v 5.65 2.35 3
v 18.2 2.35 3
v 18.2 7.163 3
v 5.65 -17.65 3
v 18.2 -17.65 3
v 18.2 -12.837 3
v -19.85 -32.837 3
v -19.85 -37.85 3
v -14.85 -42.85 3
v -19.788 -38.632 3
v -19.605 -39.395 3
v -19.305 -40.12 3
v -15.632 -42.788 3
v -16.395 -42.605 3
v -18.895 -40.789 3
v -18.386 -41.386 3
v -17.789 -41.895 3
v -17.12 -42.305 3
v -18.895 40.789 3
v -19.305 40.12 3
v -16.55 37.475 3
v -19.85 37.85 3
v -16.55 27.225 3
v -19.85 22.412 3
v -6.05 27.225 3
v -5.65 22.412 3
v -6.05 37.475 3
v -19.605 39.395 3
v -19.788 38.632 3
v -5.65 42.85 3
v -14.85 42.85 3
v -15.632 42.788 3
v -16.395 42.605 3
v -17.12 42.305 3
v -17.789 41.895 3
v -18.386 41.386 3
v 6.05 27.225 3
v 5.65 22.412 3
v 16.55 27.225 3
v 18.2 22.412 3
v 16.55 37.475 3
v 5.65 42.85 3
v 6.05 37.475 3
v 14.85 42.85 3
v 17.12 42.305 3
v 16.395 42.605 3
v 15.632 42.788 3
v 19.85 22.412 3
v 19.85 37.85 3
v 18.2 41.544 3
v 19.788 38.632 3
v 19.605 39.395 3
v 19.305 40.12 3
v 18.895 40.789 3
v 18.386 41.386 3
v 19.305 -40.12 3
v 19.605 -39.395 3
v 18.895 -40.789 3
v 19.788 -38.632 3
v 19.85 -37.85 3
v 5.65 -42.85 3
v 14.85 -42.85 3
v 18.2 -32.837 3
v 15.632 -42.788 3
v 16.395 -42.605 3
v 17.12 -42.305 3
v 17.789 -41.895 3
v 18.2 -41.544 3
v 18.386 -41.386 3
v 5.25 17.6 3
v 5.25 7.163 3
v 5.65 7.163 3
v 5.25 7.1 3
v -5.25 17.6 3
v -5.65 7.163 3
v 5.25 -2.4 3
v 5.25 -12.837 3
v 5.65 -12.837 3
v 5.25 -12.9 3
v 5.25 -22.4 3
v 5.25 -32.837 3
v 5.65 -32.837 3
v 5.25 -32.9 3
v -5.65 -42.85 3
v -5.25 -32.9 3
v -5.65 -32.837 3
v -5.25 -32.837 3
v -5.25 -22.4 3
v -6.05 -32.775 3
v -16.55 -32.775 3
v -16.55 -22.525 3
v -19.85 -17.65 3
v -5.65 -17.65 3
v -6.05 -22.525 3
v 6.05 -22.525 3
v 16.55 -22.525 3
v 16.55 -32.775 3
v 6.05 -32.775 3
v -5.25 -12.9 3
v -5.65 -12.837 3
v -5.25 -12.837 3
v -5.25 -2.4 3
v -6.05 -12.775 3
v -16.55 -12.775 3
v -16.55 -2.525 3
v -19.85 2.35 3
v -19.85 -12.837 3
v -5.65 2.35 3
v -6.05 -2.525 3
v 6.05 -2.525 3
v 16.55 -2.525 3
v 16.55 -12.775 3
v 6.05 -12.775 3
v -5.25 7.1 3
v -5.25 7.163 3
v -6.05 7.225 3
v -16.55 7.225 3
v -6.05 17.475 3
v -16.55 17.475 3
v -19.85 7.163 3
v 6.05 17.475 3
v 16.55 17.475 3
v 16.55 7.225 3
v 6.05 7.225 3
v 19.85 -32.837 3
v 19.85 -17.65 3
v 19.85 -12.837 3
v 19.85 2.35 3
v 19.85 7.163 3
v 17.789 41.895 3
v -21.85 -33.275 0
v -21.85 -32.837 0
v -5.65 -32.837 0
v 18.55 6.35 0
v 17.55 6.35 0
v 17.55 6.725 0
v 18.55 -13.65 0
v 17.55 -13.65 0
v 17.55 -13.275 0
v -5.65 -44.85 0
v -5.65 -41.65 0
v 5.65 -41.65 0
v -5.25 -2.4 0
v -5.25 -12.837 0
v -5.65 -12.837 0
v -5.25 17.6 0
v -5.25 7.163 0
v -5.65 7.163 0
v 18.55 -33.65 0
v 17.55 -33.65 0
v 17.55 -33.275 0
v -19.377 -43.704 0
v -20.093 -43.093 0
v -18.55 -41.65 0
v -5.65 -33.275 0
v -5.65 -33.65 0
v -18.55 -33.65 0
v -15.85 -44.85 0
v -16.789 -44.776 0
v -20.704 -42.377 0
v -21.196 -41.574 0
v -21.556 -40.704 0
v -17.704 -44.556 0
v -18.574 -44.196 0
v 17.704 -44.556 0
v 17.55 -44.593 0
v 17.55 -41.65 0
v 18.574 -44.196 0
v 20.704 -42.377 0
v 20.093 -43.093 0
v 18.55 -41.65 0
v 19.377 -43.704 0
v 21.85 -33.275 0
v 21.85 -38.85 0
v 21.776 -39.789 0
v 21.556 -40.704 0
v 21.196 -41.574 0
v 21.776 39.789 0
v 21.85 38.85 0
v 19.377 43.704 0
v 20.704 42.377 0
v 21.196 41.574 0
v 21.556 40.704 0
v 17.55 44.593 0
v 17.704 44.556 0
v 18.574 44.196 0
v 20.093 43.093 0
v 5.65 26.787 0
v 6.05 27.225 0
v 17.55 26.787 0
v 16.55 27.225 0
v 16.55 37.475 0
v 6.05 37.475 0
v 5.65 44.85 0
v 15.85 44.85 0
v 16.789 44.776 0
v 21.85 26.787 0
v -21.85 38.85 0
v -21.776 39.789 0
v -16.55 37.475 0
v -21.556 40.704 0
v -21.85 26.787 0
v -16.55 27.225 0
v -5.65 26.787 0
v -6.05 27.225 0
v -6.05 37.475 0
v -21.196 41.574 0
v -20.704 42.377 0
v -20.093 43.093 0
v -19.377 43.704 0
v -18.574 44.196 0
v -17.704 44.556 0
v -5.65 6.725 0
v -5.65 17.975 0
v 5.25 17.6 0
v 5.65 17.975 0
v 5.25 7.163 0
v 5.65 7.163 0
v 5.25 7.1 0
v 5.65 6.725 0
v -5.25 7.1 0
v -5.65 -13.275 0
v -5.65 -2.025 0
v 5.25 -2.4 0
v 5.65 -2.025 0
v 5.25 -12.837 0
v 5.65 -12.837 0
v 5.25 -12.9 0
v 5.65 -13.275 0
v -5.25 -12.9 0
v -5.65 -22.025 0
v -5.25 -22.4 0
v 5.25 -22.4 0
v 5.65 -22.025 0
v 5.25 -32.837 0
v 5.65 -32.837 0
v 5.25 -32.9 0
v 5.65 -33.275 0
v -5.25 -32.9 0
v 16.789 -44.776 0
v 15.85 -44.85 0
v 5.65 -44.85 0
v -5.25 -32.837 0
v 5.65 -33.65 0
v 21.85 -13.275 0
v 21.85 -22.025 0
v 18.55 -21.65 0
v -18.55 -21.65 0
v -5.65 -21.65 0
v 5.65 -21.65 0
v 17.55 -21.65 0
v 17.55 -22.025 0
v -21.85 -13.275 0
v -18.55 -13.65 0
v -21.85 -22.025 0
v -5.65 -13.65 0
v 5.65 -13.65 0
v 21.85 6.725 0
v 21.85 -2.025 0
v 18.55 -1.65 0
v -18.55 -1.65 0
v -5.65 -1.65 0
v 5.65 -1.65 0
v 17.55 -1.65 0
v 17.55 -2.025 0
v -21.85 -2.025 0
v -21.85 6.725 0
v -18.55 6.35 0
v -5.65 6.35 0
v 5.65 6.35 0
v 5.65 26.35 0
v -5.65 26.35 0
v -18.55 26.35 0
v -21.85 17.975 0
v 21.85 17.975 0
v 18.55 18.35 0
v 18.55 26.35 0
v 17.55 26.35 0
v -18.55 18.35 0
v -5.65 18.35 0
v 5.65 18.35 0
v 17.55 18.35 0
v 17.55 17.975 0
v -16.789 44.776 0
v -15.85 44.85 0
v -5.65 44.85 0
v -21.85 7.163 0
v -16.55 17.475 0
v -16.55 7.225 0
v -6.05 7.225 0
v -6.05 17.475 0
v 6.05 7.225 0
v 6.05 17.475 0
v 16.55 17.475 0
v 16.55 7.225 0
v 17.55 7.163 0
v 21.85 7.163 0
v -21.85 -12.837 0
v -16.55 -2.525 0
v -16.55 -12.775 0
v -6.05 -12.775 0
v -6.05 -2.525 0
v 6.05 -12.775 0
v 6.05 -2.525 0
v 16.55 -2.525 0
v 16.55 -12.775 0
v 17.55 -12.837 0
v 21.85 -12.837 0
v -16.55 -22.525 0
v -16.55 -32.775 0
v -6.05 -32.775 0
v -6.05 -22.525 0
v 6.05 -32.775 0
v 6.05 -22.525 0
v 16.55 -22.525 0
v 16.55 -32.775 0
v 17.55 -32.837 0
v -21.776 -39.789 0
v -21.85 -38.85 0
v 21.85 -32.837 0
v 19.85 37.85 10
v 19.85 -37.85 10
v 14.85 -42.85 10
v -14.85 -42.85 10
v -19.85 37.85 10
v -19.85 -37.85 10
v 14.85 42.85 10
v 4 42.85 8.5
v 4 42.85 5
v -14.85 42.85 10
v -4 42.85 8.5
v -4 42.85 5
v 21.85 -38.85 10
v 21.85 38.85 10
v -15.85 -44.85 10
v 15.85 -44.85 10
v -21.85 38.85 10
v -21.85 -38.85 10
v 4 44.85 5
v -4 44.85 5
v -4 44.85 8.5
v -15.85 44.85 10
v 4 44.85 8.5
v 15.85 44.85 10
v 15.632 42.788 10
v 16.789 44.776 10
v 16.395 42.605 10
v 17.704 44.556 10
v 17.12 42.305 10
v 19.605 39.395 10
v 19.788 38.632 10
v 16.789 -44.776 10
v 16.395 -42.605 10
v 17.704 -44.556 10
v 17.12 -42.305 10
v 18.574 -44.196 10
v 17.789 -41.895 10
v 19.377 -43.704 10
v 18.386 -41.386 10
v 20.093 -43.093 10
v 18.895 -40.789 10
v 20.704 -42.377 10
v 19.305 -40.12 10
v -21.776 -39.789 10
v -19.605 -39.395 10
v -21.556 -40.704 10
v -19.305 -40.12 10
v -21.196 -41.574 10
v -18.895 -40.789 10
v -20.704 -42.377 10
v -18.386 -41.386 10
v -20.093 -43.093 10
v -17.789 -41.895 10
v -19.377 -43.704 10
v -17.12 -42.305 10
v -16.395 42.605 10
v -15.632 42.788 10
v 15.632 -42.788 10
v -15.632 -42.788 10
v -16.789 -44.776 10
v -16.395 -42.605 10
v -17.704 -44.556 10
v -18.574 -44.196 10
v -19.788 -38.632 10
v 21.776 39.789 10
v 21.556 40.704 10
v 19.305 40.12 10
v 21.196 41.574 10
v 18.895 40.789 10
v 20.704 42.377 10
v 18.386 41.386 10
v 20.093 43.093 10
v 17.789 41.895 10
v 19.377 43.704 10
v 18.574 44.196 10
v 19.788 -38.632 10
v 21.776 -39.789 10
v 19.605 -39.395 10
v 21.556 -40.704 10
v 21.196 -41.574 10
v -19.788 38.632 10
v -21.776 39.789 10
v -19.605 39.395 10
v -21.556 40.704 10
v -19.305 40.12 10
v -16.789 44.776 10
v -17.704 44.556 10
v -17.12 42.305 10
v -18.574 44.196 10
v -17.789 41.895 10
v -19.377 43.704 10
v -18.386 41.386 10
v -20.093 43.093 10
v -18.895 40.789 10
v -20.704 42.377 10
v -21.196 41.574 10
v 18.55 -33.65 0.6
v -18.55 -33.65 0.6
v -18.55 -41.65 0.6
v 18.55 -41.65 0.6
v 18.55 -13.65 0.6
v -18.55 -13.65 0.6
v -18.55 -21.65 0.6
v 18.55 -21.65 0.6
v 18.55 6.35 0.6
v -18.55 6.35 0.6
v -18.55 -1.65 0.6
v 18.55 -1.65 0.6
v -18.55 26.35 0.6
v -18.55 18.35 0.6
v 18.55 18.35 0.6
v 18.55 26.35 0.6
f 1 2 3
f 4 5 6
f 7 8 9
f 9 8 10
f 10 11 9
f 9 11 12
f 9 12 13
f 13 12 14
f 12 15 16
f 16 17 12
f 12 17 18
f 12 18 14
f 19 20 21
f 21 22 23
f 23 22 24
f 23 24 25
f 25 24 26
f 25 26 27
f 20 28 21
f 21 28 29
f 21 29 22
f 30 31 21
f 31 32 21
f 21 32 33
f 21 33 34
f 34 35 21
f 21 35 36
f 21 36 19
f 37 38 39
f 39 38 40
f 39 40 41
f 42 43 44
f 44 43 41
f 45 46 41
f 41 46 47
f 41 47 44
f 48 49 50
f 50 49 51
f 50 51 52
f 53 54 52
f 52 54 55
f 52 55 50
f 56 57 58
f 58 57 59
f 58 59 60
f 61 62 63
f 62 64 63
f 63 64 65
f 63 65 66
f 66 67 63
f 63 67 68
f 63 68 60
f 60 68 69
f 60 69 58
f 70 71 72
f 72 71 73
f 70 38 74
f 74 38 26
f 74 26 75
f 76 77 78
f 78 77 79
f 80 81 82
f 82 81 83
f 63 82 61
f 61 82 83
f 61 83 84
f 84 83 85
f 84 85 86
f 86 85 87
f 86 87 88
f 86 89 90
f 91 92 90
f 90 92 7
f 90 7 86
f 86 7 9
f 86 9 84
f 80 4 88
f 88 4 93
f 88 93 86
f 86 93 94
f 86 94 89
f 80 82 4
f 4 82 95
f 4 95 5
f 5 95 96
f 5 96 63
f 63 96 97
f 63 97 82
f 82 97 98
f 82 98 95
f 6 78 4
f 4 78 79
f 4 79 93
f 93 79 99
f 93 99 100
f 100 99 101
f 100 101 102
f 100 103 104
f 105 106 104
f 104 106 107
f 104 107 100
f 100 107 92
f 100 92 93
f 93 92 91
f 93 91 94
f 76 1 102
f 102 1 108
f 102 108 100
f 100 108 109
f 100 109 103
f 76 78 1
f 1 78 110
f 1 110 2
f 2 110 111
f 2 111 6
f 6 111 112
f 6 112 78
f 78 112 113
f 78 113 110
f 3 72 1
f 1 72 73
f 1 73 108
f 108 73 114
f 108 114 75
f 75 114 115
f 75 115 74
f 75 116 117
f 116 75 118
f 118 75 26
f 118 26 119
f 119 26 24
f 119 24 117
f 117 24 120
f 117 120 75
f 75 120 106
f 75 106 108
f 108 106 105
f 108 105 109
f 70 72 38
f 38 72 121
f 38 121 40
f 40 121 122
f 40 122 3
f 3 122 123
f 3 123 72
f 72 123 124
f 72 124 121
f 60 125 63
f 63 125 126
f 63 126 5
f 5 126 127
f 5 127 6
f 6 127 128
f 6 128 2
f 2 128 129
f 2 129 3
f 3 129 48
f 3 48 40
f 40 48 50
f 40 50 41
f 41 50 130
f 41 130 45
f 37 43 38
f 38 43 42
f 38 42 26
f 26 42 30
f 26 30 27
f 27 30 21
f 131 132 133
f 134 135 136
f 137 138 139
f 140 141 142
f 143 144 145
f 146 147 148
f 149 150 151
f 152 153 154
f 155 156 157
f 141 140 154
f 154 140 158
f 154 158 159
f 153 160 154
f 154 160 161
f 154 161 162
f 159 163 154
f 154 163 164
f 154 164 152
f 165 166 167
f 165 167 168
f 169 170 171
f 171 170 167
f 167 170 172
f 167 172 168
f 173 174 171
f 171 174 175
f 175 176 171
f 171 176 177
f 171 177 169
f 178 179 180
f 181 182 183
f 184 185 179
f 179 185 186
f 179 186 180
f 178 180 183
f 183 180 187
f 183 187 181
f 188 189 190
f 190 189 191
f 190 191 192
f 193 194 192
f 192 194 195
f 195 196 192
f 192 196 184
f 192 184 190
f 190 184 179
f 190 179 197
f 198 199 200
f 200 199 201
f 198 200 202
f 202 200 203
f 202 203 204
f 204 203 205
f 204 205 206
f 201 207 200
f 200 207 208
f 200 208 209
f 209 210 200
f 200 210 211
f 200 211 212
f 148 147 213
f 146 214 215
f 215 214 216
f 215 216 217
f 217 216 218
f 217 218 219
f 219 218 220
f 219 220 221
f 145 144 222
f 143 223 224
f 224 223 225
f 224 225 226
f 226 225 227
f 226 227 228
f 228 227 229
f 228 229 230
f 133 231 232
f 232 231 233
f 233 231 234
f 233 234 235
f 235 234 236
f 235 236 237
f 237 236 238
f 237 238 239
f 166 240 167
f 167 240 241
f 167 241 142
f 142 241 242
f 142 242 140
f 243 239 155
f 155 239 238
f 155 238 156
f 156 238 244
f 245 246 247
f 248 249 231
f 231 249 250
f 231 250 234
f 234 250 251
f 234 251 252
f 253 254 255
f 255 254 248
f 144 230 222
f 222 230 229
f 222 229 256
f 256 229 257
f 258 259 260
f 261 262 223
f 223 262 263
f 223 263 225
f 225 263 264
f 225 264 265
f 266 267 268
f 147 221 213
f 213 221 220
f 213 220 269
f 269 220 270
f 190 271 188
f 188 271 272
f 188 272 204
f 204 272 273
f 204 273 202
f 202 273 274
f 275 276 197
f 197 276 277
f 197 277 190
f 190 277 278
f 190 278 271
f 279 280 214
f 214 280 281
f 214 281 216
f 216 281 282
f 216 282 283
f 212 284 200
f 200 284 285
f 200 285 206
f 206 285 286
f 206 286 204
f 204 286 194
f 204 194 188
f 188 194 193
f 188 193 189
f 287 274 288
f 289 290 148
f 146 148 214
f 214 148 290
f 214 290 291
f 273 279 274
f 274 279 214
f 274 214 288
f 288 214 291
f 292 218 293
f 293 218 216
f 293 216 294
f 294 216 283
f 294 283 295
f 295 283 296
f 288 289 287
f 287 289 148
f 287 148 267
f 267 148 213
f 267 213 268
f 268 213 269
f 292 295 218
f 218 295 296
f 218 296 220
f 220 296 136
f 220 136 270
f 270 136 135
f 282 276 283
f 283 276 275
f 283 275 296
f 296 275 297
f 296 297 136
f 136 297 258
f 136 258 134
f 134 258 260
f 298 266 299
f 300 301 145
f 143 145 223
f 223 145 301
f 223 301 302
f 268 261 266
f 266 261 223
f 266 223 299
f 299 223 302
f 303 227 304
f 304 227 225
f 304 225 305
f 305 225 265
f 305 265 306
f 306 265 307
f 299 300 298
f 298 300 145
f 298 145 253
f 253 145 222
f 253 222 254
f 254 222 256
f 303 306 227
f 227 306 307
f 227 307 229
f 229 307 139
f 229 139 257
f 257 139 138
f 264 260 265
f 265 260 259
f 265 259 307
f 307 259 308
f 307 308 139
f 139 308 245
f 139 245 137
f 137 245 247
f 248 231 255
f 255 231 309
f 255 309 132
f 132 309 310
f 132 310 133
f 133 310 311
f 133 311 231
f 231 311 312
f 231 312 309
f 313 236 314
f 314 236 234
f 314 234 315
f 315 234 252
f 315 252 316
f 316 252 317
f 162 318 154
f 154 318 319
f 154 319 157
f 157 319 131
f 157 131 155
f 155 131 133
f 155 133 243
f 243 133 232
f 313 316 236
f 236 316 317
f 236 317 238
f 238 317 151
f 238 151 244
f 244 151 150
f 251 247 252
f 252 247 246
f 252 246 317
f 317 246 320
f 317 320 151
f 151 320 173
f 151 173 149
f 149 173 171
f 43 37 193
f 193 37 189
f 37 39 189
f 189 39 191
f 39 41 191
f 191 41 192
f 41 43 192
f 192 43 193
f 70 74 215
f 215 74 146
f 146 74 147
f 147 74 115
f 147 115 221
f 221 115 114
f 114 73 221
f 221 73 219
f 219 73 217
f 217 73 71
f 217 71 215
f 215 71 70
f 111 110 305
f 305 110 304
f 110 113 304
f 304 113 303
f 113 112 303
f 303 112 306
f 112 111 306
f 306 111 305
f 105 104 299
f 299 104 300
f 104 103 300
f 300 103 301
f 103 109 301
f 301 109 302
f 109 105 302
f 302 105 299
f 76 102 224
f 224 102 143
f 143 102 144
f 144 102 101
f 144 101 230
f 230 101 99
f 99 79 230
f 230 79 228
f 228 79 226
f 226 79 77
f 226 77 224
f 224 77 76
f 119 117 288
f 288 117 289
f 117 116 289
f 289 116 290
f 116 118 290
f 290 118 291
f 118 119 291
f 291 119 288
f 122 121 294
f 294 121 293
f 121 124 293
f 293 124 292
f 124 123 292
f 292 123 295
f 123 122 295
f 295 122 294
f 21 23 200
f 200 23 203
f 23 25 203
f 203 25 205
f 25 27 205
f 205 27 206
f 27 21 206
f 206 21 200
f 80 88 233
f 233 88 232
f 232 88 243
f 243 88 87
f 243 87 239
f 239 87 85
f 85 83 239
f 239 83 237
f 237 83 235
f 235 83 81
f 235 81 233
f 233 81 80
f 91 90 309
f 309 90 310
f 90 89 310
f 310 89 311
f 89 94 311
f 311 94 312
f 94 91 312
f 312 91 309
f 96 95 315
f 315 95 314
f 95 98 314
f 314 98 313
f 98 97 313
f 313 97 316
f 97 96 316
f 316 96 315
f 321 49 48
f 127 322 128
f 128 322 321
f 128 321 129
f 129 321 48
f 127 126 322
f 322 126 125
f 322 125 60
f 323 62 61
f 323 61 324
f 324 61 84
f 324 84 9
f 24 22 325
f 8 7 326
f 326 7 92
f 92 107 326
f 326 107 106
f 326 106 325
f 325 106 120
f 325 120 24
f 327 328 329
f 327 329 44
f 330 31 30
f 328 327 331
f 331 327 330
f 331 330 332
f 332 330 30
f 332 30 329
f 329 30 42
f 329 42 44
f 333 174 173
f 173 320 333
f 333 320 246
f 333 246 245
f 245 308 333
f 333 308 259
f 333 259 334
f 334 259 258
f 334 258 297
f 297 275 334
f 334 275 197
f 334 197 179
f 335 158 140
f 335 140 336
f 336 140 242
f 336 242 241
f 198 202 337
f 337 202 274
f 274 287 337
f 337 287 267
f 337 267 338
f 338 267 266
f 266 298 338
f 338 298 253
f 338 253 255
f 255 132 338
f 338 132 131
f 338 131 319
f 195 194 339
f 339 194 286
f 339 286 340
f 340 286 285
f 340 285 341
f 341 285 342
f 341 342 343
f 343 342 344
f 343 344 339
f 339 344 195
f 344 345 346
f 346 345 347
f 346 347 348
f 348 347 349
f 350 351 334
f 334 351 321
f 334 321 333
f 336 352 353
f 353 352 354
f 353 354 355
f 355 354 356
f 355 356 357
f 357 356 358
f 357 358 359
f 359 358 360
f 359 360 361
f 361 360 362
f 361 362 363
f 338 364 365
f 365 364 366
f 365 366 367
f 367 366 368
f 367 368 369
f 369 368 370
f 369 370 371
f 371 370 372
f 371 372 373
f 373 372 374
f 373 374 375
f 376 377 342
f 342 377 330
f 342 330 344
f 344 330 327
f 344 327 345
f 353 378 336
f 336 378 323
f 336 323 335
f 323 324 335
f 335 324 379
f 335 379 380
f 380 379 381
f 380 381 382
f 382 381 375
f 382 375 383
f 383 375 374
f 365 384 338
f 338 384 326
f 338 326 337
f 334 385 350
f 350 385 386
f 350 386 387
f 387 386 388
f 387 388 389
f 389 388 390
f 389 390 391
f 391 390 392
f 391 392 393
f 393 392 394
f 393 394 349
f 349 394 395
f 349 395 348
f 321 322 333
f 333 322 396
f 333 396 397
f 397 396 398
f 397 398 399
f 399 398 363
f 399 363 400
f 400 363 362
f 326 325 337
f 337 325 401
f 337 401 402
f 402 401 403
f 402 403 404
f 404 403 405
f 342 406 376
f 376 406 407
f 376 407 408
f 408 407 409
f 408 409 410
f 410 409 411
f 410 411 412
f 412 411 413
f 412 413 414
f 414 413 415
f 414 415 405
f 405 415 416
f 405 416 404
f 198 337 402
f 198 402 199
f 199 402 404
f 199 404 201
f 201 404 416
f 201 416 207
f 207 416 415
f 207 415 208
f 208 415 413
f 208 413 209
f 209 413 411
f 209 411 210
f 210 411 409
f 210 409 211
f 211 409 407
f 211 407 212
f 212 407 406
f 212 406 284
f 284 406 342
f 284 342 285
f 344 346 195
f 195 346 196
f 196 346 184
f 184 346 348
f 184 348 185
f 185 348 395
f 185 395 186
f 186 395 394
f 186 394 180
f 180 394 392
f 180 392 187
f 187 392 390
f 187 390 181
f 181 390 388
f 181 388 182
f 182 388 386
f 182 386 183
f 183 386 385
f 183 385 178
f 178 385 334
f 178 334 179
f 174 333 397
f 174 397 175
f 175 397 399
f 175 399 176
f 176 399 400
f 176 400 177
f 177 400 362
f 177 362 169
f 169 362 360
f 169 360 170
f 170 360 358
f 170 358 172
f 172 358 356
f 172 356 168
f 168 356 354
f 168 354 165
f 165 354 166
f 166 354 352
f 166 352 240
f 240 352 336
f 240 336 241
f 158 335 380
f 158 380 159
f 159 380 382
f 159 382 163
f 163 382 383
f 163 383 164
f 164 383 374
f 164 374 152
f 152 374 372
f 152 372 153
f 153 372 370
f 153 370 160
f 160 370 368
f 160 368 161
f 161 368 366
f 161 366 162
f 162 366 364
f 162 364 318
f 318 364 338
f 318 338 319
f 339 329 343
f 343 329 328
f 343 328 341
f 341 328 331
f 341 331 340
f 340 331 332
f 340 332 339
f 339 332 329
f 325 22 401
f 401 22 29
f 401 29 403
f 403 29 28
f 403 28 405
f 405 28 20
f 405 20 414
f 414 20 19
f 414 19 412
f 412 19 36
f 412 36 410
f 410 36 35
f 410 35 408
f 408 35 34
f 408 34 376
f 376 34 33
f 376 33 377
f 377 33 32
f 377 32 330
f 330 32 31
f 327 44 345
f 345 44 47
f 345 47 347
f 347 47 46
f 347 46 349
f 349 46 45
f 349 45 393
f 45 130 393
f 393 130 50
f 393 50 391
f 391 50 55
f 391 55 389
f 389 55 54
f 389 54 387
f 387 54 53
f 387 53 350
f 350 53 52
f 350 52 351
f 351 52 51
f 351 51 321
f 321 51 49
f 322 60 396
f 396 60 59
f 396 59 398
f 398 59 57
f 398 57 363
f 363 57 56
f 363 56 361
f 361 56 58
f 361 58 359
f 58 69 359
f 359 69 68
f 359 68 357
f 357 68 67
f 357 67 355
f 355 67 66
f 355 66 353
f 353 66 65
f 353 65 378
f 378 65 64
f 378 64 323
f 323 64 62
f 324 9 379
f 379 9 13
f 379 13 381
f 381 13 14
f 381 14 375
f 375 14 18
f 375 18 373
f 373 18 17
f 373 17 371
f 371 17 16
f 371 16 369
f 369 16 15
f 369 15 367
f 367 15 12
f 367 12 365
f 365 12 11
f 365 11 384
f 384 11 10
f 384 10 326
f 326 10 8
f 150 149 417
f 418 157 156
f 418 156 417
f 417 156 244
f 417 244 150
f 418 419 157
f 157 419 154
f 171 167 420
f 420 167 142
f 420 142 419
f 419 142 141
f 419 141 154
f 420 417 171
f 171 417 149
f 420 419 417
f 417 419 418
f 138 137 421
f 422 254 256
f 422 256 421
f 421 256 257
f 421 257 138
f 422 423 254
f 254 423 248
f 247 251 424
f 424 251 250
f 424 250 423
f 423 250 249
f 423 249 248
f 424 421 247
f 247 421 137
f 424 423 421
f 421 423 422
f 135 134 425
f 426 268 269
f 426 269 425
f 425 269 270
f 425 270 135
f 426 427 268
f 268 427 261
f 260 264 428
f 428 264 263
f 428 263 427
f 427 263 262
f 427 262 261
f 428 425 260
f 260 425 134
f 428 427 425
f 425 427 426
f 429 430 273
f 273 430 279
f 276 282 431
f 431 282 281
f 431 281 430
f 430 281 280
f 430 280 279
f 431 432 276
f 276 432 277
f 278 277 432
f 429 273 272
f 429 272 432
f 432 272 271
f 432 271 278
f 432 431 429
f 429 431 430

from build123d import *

# Parameters (mm, degrees)
SKETCH_1_W             = 39.7
SKETCH_1_H             = 85.7
EXTRUDE_1_DEPTH        = 3
SKETCH_3_W             = 10.5
SKETCH_3_H             = 10.25
SKETCH_3_H_2           = 10.5
CUT_EXTRUDE_1_DEPTH    = 3
EXTRUDE_1_2_DEPTH      = 7
EXTRUDE_1_2_DEPTH_BACK = 3
SKETCH_6_W             = 43.7
SKETCH_6_H             = 89.7
SKETCH_6_W_2           = 39.7
SKETCH_6_H_2           = 85.7
FILLET_1_R             = 6
SKETCH_7_W             = 8
SKETCH_7_H             = 3.5
CUT_EXTRUDE_2_DEPTH    = 7
FILLET_2_R             = 5
FILLET_3_R             = 5
SKETCH_8_W             = 10.5
SKETCH_8_H             = 10.5
EXTRUDE_2_DEPTH        = 3
SKETCH_9_W             = 37.1
SKETCH_9_H             = 8
CUT_EXTRUDE_3_DEPTH    = 0.6


with BuildPart() as part:
    # 스케치1 → Extrude 1 (new body)
    with BuildSketch(Plane.XY):
        Rectangle(SKETCH_1_W, SKETCH_1_H)
    extrude(amount=EXTRUDE_1_DEPTH)

    # 스케치3 → 컷-돌출1 (cut)
    with BuildSketch(Plane(origin=(0, 0, 0), x_dir=(-1, 0, 0), z_dir=(0, 0, -1))):
        with Locations((-11.3, 32.35)):
            Rectangle(SKETCH_3_W, SKETCH_3_H)
        with Locations((-11.3, 12.35)):
            Rectangle(SKETCH_3_W, SKETCH_3_H)
        with Locations((11.3, 32.35)):
            Rectangle(SKETCH_3_W, SKETCH_3_H)
        with Locations((0, 32.35)):
            Rectangle(SKETCH_3_W, SKETCH_3_H_2)
        with Locations((0, 12.35)):
            Rectangle(SKETCH_3_W, SKETCH_3_H_2)
        with Locations((11.3, 12.35)):
            Rectangle(SKETCH_3_W, SKETCH_3_H)
        with Locations((-11.3, -7.65)):
            Rectangle(SKETCH_3_W, SKETCH_3_H)
        with Locations((0, -7.65)):
            Rectangle(SKETCH_3_W, SKETCH_3_H_2)
        with Locations((11.3, -7.65)):
            Rectangle(SKETCH_3_W, SKETCH_3_H)
        with Locations((-11.3, -27.65)):
            Rectangle(SKETCH_3_W, SKETCH_3_H)
        with Locations((0, -27.65)):
            Rectangle(SKETCH_3_W, SKETCH_3_H_2)
        with Locations((11.3, -27.65)):
            Rectangle(SKETCH_3_W, SKETCH_3_H)
    extrude(amount=-CUT_EXTRUDE_1_DEPTH, mode=Mode.SUBTRACT)

    # 스케치6 → Extrude 1 2 (add, two sides: drawn at the far end of the back side and taken through both)
    with BuildSketch(Plane.XY.offset(3).offset(-EXTRUDE_1_2_DEPTH_BACK)):
        Rectangle(SKETCH_6_W, SKETCH_6_H)
        Rectangle(SKETCH_6_W_2, SKETCH_6_H_2, mode=Mode.SUBTRACT)
    extrude(amount=EXTRUDE_1_2_DEPTH + EXTRUDE_1_2_DEPTH_BACK)

    # 필렛1
    fillet_1_edges = [part.edges().sort_by_distance(p)[0] for p in [
        (21.85, 44.85, 5),
        (21.85, -44.85, 5),
        (-21.85, -44.85, 5),
        (-21.85, 44.85, 5),
    ]]
    fillet(fillet_1_edges, radius=FILLET_1_R)

    # 스케치7 → 컷-돌출2 (cut)
    with BuildSketch(Plane(origin=(0, 44.85, 0), x_dir=(1, 0, 0), z_dir=(0, 1, 0))):
        with Locations((0, -6.75)):
            Rectangle(SKETCH_7_W, SKETCH_7_H)
    extrude(amount=-CUT_EXTRUDE_2_DEPTH, mode=Mode.SUBTRACT)

    # 필렛2
    fillet_2_edges = [part.edges().sort_by_distance(p)[0] for p in [
        (-19.85, 42.85, 6.5),
        (19.85, 42.85, 6.5),
    ]]
    fillet(fillet_2_edges, radius=FILLET_2_R)

    # 필렛3
    fillet_3_edges = [part.edges().sort_by_distance(p)[0] for p in [
        (19.85, -42.85, 6.5),
        (-19.85, -42.85, 6.5),
    ]]
    fillet(fillet_3_edges, radius=FILLET_3_R)

    # 스케치8 → 보스-돌출2 (add)
    with BuildSketch(Plane(origin=(0, 0, 0), x_dir=(-1, 0, 0), z_dir=(0, 0, -1))):
        with Locations((0, 32.35)):
            Rectangle(SKETCH_8_W, SKETCH_8_H)
    extrude(amount=-EXTRUDE_2_DEPTH)

    # 스케치9 → 컷-돌출3 (cut)
    with BuildSketch(Plane(origin=(0, 0, 0), x_dir=(-1, 0, 0), z_dir=(0, 0, -1))):
        with Locations((0, 2.35)):
            Rectangle(SKETCH_9_W, SKETCH_9_H)
        with Locations((0, 22.35)):
            Rectangle(SKETCH_9_W, SKETCH_9_H)
        with Locations((0, -17.65)):
            Rectangle(SKETCH_9_W, SKETCH_9_H)
        with Locations((0, -37.65)):
            Rectangle(SKETCH_9_W, SKETCH_9_H)
    extrude(amount=-CUT_EXTRUDE_3_DEPTH, mode=Mode.SUBTRACT)


solid = part.part
